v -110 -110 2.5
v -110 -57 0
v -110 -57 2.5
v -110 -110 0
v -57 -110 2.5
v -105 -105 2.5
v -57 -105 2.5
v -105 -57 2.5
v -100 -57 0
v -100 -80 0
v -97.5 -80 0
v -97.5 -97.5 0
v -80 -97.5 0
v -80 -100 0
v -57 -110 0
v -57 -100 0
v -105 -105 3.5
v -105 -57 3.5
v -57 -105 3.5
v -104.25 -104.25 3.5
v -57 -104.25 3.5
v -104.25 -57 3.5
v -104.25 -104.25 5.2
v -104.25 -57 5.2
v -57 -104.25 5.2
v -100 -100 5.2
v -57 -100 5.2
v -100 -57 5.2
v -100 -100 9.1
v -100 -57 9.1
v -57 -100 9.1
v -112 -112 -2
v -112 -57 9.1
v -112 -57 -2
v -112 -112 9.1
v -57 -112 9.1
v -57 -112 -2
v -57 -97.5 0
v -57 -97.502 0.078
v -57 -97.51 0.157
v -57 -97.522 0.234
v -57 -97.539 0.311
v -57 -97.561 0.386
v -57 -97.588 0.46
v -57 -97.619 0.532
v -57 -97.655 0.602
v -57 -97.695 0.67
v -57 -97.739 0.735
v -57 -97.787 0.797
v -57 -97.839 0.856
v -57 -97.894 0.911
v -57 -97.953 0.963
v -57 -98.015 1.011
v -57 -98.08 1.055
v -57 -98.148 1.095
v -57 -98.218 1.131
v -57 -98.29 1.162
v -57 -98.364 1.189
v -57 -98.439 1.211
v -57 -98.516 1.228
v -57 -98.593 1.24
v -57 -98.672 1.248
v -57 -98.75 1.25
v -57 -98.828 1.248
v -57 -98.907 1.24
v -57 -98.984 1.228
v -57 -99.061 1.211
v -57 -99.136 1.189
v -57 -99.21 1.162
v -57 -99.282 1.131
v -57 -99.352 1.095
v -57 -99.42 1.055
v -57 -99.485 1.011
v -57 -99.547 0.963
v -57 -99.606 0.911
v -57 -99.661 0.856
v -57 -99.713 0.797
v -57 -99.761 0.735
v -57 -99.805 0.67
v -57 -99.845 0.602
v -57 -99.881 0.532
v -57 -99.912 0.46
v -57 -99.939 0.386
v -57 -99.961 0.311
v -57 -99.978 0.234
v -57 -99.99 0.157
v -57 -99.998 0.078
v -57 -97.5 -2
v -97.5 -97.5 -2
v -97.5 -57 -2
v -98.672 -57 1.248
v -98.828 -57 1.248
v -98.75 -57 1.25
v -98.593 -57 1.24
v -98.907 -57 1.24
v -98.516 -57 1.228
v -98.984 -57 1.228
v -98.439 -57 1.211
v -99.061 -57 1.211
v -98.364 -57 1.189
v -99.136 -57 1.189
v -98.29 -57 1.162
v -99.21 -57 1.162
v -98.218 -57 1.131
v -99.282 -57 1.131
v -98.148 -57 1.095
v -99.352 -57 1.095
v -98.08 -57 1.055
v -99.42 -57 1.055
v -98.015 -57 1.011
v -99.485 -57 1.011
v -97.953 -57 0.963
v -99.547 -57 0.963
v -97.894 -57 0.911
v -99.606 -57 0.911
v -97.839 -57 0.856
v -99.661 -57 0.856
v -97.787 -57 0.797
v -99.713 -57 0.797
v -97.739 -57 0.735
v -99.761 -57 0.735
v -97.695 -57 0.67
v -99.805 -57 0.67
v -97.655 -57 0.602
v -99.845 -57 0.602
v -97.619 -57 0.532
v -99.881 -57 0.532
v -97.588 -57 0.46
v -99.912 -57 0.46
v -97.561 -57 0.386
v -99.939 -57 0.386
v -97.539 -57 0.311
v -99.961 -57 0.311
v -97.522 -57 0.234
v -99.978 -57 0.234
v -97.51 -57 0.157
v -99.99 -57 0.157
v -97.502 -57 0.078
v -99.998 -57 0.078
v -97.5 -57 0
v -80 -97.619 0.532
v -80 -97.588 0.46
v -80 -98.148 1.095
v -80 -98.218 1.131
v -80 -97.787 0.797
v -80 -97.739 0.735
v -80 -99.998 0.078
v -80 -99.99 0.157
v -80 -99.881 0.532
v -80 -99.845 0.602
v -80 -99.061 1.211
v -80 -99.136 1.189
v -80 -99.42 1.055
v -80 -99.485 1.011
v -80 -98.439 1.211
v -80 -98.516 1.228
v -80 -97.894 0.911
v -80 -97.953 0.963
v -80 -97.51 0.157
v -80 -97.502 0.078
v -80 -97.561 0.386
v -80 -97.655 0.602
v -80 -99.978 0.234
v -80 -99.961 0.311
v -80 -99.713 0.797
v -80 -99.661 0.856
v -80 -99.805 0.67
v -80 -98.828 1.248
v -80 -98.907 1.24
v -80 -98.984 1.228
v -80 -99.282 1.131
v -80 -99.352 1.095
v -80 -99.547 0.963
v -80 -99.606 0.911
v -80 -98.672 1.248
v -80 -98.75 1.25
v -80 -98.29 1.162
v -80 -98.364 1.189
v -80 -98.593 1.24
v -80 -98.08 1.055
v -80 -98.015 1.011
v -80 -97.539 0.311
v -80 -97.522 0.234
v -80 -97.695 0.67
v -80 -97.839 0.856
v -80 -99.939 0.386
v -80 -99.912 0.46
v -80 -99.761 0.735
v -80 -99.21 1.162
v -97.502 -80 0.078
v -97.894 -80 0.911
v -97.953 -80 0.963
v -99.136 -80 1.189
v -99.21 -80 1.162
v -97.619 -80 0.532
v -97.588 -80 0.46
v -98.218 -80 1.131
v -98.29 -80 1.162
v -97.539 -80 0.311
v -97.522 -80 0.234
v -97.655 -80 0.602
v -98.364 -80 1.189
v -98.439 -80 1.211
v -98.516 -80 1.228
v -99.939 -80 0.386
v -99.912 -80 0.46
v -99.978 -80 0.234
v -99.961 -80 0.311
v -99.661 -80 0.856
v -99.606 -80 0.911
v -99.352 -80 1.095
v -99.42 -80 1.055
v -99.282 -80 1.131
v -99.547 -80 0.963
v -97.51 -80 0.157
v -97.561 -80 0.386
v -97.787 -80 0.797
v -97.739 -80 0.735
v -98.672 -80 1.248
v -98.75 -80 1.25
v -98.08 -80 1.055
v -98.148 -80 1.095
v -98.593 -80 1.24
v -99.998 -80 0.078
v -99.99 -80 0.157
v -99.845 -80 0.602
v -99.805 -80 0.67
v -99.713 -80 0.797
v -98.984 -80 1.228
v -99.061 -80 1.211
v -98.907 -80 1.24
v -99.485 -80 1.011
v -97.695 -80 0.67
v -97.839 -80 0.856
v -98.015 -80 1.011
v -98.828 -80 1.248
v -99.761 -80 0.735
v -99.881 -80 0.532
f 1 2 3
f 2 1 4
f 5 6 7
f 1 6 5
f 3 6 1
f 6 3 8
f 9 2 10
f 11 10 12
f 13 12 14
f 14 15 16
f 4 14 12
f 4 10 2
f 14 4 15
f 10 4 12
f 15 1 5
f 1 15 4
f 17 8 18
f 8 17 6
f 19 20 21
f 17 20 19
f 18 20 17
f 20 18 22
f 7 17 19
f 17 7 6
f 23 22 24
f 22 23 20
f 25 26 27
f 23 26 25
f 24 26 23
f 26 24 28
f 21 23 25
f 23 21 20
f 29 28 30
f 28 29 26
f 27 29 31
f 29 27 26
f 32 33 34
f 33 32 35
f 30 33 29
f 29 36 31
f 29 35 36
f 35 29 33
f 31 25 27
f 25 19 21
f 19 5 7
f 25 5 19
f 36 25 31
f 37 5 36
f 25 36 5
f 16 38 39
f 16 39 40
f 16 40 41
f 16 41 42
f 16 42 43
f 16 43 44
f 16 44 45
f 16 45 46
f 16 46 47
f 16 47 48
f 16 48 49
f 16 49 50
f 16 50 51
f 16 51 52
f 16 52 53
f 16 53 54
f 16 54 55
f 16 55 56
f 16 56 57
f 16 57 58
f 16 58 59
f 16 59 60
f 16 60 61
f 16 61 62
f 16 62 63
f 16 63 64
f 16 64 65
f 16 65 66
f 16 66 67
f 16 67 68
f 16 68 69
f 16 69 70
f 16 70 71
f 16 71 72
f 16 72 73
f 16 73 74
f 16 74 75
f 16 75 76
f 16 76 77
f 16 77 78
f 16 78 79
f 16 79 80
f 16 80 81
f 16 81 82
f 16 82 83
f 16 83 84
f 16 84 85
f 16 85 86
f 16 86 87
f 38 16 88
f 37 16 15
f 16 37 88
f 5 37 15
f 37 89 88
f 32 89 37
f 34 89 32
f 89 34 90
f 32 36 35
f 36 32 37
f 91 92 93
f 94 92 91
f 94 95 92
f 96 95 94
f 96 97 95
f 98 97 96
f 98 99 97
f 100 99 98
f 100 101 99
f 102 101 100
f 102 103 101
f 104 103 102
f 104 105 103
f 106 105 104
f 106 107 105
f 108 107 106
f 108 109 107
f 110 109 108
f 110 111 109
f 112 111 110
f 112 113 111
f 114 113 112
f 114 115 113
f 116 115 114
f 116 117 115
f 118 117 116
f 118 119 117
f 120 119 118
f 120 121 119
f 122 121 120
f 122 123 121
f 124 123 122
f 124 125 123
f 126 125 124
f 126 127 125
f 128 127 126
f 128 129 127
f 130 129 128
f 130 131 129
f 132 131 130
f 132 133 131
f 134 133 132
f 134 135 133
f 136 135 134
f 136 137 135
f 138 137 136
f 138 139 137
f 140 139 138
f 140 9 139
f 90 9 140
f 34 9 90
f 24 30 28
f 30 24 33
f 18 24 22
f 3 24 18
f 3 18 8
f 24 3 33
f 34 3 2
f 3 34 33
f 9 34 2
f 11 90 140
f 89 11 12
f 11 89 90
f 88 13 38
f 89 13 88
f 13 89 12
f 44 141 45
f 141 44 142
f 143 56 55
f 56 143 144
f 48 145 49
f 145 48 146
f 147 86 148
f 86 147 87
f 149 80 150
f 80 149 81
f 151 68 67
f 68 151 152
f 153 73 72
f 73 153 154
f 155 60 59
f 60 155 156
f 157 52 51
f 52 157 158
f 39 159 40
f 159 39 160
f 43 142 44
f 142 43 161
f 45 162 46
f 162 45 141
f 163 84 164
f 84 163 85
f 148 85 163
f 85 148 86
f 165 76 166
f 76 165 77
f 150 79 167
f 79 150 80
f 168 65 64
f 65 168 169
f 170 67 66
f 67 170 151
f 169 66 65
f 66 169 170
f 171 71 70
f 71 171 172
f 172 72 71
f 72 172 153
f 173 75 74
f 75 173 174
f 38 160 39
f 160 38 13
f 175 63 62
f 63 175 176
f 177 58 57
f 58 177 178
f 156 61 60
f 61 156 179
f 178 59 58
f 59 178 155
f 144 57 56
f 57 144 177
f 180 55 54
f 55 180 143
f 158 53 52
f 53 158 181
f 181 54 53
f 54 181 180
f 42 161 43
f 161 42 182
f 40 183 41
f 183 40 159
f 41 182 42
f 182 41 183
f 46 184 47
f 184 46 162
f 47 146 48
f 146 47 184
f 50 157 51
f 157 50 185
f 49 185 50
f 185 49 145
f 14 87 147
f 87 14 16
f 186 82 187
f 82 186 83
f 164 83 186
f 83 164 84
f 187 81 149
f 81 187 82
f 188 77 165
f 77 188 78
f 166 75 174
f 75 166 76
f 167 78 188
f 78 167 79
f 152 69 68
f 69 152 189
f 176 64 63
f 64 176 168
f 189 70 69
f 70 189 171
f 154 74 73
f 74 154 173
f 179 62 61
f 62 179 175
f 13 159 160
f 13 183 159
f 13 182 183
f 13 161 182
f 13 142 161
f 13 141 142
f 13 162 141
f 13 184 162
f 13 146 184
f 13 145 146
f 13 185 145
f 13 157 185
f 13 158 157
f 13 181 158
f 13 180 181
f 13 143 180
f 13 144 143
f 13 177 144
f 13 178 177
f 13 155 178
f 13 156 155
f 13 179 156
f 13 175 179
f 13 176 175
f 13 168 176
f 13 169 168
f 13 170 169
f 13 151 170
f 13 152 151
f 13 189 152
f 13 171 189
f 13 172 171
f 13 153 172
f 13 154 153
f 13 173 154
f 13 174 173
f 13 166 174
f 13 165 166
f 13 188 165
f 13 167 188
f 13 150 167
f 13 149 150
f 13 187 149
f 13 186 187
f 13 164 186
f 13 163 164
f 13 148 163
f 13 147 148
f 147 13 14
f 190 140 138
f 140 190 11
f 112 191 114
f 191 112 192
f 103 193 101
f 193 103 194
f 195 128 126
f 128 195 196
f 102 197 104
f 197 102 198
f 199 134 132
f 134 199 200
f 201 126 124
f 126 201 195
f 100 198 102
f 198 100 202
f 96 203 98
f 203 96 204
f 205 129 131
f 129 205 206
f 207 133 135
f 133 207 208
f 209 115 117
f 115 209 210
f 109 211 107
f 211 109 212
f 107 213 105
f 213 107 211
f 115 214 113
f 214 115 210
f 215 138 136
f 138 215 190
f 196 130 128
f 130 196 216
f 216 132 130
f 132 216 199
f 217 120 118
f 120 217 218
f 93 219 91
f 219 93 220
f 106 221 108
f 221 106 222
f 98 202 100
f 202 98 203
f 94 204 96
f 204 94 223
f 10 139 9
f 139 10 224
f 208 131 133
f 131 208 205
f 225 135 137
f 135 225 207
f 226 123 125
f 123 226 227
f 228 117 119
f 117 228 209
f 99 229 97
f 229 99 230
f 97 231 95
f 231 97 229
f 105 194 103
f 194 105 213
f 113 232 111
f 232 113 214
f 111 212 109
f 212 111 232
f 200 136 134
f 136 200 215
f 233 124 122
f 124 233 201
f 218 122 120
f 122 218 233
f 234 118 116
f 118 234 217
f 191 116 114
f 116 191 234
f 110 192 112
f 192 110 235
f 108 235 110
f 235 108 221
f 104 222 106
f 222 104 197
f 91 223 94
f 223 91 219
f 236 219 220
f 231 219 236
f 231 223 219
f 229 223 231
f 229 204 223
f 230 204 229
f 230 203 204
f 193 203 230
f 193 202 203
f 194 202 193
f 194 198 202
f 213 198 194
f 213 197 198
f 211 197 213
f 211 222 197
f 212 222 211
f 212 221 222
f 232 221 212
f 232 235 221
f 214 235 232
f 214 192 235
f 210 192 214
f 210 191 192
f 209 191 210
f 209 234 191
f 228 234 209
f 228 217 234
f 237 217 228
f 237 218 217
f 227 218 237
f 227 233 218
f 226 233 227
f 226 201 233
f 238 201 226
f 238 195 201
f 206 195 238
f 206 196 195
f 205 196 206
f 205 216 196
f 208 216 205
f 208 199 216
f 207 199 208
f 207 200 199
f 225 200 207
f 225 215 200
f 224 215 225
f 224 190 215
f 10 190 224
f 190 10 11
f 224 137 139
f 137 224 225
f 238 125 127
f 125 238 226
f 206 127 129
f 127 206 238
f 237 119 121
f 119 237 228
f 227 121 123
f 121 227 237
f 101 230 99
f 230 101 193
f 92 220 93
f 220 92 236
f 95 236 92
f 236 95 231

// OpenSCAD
epaisseur_mirroir = 3.9;
epaisseur_carton = 1;
epaisseur_chauf = 1.7;
epaisseur_metal = 2.5;
epaisseur_clip = 2;

longueur_mirroir = 200;
longueur_carton = 210;
longueur_chauf = 208.5;
longueur_metal = 220;
largeur_metal = 10.5;
longueur_clip = longueur_metal/4;
distance_min_clip = 30;

module plateau(){
    //plaque métal
    translate([0,0,epaisseur_metal/2])
    color("lime")
    cube([longueur_metal,longueur_metal,epaisseur_metal], center=true);
    
    //carton
    translate([0,0,epaisseur_metal+epaisseur_carton/2])
    color("yellow")
    cube([longueur_carton,longueur_carton,epaisseur_carton], center=true);
    
    //plateau chauffant
    translate([0,0,epaisseur_metal+epaisseur_carton+epaisseur_chauf/2])
    color("red")
    cube([longueur_chauf,longueur_chauf,epaisseur_chauf], center=true);
    
    //mirroir
    translate([0,0,epaisseur_metal+epaisseur_carton+epaisseur_chauf+epaisseur_mirroir/2])
    color("blue")
    cube([longueur_mirroir,longueur_mirroir,epaisseur_mirroir+0.2], center=true);
    
}

module clip(){
    epaisseur_totale = epaisseur_mirroir+epaisseur_carton+epaisseur_chauf+epaisseur_metal+epaisseur_clip;
    difference(){
        translate([-(epaisseur_clip+longueur_metal/2),-(epaisseur_clip+longueur_metal/2),-epaisseur_clip])
        cube([longueur_clip,longueur_clip,epaisseur_totale]);
        plateau();
        cube([longueur_metal-2*largeur_metal-2*epaisseur_clip,longueur_metal-2*largeur_metal-2*epaisseur_clip,epaisseur_totale], center = true);
    }
    longueur_cylindre = longueur_clip-(distance_min_clip+epaisseur_clip);
    rayon_cylindre = epaisseur_clip/1.6;
    translate([-(longueur_metal/2+epaisseur_clip) + (distance_min_clip+epaisseur_clip),-(longueur_metal/2-largeur_metal-epaisseur_clip)-rayon_cylindre,0])
        rotate([0,90,0]) cylinder(h=longueur_cylindre, r=rayon_cylindre, $fn=100);
    translate([-(longueur_metal/2-largeur_metal-epaisseur_clip)-rayon_cylindre,-(longueur_metal/2+epaisseur_clip) + (distance_min_clip+epaisseur_clip) + longueur_cylindre,0])
        rotate([90,0,0]) cylinder(h=longueur_cylindre, r=rayon_cylindre, $fn=100);
}


clip();
translate([-longueur_metal/2,-longueur_metal/2,-epaisseur_clip]) color("pink") cube([10,10,1]);
